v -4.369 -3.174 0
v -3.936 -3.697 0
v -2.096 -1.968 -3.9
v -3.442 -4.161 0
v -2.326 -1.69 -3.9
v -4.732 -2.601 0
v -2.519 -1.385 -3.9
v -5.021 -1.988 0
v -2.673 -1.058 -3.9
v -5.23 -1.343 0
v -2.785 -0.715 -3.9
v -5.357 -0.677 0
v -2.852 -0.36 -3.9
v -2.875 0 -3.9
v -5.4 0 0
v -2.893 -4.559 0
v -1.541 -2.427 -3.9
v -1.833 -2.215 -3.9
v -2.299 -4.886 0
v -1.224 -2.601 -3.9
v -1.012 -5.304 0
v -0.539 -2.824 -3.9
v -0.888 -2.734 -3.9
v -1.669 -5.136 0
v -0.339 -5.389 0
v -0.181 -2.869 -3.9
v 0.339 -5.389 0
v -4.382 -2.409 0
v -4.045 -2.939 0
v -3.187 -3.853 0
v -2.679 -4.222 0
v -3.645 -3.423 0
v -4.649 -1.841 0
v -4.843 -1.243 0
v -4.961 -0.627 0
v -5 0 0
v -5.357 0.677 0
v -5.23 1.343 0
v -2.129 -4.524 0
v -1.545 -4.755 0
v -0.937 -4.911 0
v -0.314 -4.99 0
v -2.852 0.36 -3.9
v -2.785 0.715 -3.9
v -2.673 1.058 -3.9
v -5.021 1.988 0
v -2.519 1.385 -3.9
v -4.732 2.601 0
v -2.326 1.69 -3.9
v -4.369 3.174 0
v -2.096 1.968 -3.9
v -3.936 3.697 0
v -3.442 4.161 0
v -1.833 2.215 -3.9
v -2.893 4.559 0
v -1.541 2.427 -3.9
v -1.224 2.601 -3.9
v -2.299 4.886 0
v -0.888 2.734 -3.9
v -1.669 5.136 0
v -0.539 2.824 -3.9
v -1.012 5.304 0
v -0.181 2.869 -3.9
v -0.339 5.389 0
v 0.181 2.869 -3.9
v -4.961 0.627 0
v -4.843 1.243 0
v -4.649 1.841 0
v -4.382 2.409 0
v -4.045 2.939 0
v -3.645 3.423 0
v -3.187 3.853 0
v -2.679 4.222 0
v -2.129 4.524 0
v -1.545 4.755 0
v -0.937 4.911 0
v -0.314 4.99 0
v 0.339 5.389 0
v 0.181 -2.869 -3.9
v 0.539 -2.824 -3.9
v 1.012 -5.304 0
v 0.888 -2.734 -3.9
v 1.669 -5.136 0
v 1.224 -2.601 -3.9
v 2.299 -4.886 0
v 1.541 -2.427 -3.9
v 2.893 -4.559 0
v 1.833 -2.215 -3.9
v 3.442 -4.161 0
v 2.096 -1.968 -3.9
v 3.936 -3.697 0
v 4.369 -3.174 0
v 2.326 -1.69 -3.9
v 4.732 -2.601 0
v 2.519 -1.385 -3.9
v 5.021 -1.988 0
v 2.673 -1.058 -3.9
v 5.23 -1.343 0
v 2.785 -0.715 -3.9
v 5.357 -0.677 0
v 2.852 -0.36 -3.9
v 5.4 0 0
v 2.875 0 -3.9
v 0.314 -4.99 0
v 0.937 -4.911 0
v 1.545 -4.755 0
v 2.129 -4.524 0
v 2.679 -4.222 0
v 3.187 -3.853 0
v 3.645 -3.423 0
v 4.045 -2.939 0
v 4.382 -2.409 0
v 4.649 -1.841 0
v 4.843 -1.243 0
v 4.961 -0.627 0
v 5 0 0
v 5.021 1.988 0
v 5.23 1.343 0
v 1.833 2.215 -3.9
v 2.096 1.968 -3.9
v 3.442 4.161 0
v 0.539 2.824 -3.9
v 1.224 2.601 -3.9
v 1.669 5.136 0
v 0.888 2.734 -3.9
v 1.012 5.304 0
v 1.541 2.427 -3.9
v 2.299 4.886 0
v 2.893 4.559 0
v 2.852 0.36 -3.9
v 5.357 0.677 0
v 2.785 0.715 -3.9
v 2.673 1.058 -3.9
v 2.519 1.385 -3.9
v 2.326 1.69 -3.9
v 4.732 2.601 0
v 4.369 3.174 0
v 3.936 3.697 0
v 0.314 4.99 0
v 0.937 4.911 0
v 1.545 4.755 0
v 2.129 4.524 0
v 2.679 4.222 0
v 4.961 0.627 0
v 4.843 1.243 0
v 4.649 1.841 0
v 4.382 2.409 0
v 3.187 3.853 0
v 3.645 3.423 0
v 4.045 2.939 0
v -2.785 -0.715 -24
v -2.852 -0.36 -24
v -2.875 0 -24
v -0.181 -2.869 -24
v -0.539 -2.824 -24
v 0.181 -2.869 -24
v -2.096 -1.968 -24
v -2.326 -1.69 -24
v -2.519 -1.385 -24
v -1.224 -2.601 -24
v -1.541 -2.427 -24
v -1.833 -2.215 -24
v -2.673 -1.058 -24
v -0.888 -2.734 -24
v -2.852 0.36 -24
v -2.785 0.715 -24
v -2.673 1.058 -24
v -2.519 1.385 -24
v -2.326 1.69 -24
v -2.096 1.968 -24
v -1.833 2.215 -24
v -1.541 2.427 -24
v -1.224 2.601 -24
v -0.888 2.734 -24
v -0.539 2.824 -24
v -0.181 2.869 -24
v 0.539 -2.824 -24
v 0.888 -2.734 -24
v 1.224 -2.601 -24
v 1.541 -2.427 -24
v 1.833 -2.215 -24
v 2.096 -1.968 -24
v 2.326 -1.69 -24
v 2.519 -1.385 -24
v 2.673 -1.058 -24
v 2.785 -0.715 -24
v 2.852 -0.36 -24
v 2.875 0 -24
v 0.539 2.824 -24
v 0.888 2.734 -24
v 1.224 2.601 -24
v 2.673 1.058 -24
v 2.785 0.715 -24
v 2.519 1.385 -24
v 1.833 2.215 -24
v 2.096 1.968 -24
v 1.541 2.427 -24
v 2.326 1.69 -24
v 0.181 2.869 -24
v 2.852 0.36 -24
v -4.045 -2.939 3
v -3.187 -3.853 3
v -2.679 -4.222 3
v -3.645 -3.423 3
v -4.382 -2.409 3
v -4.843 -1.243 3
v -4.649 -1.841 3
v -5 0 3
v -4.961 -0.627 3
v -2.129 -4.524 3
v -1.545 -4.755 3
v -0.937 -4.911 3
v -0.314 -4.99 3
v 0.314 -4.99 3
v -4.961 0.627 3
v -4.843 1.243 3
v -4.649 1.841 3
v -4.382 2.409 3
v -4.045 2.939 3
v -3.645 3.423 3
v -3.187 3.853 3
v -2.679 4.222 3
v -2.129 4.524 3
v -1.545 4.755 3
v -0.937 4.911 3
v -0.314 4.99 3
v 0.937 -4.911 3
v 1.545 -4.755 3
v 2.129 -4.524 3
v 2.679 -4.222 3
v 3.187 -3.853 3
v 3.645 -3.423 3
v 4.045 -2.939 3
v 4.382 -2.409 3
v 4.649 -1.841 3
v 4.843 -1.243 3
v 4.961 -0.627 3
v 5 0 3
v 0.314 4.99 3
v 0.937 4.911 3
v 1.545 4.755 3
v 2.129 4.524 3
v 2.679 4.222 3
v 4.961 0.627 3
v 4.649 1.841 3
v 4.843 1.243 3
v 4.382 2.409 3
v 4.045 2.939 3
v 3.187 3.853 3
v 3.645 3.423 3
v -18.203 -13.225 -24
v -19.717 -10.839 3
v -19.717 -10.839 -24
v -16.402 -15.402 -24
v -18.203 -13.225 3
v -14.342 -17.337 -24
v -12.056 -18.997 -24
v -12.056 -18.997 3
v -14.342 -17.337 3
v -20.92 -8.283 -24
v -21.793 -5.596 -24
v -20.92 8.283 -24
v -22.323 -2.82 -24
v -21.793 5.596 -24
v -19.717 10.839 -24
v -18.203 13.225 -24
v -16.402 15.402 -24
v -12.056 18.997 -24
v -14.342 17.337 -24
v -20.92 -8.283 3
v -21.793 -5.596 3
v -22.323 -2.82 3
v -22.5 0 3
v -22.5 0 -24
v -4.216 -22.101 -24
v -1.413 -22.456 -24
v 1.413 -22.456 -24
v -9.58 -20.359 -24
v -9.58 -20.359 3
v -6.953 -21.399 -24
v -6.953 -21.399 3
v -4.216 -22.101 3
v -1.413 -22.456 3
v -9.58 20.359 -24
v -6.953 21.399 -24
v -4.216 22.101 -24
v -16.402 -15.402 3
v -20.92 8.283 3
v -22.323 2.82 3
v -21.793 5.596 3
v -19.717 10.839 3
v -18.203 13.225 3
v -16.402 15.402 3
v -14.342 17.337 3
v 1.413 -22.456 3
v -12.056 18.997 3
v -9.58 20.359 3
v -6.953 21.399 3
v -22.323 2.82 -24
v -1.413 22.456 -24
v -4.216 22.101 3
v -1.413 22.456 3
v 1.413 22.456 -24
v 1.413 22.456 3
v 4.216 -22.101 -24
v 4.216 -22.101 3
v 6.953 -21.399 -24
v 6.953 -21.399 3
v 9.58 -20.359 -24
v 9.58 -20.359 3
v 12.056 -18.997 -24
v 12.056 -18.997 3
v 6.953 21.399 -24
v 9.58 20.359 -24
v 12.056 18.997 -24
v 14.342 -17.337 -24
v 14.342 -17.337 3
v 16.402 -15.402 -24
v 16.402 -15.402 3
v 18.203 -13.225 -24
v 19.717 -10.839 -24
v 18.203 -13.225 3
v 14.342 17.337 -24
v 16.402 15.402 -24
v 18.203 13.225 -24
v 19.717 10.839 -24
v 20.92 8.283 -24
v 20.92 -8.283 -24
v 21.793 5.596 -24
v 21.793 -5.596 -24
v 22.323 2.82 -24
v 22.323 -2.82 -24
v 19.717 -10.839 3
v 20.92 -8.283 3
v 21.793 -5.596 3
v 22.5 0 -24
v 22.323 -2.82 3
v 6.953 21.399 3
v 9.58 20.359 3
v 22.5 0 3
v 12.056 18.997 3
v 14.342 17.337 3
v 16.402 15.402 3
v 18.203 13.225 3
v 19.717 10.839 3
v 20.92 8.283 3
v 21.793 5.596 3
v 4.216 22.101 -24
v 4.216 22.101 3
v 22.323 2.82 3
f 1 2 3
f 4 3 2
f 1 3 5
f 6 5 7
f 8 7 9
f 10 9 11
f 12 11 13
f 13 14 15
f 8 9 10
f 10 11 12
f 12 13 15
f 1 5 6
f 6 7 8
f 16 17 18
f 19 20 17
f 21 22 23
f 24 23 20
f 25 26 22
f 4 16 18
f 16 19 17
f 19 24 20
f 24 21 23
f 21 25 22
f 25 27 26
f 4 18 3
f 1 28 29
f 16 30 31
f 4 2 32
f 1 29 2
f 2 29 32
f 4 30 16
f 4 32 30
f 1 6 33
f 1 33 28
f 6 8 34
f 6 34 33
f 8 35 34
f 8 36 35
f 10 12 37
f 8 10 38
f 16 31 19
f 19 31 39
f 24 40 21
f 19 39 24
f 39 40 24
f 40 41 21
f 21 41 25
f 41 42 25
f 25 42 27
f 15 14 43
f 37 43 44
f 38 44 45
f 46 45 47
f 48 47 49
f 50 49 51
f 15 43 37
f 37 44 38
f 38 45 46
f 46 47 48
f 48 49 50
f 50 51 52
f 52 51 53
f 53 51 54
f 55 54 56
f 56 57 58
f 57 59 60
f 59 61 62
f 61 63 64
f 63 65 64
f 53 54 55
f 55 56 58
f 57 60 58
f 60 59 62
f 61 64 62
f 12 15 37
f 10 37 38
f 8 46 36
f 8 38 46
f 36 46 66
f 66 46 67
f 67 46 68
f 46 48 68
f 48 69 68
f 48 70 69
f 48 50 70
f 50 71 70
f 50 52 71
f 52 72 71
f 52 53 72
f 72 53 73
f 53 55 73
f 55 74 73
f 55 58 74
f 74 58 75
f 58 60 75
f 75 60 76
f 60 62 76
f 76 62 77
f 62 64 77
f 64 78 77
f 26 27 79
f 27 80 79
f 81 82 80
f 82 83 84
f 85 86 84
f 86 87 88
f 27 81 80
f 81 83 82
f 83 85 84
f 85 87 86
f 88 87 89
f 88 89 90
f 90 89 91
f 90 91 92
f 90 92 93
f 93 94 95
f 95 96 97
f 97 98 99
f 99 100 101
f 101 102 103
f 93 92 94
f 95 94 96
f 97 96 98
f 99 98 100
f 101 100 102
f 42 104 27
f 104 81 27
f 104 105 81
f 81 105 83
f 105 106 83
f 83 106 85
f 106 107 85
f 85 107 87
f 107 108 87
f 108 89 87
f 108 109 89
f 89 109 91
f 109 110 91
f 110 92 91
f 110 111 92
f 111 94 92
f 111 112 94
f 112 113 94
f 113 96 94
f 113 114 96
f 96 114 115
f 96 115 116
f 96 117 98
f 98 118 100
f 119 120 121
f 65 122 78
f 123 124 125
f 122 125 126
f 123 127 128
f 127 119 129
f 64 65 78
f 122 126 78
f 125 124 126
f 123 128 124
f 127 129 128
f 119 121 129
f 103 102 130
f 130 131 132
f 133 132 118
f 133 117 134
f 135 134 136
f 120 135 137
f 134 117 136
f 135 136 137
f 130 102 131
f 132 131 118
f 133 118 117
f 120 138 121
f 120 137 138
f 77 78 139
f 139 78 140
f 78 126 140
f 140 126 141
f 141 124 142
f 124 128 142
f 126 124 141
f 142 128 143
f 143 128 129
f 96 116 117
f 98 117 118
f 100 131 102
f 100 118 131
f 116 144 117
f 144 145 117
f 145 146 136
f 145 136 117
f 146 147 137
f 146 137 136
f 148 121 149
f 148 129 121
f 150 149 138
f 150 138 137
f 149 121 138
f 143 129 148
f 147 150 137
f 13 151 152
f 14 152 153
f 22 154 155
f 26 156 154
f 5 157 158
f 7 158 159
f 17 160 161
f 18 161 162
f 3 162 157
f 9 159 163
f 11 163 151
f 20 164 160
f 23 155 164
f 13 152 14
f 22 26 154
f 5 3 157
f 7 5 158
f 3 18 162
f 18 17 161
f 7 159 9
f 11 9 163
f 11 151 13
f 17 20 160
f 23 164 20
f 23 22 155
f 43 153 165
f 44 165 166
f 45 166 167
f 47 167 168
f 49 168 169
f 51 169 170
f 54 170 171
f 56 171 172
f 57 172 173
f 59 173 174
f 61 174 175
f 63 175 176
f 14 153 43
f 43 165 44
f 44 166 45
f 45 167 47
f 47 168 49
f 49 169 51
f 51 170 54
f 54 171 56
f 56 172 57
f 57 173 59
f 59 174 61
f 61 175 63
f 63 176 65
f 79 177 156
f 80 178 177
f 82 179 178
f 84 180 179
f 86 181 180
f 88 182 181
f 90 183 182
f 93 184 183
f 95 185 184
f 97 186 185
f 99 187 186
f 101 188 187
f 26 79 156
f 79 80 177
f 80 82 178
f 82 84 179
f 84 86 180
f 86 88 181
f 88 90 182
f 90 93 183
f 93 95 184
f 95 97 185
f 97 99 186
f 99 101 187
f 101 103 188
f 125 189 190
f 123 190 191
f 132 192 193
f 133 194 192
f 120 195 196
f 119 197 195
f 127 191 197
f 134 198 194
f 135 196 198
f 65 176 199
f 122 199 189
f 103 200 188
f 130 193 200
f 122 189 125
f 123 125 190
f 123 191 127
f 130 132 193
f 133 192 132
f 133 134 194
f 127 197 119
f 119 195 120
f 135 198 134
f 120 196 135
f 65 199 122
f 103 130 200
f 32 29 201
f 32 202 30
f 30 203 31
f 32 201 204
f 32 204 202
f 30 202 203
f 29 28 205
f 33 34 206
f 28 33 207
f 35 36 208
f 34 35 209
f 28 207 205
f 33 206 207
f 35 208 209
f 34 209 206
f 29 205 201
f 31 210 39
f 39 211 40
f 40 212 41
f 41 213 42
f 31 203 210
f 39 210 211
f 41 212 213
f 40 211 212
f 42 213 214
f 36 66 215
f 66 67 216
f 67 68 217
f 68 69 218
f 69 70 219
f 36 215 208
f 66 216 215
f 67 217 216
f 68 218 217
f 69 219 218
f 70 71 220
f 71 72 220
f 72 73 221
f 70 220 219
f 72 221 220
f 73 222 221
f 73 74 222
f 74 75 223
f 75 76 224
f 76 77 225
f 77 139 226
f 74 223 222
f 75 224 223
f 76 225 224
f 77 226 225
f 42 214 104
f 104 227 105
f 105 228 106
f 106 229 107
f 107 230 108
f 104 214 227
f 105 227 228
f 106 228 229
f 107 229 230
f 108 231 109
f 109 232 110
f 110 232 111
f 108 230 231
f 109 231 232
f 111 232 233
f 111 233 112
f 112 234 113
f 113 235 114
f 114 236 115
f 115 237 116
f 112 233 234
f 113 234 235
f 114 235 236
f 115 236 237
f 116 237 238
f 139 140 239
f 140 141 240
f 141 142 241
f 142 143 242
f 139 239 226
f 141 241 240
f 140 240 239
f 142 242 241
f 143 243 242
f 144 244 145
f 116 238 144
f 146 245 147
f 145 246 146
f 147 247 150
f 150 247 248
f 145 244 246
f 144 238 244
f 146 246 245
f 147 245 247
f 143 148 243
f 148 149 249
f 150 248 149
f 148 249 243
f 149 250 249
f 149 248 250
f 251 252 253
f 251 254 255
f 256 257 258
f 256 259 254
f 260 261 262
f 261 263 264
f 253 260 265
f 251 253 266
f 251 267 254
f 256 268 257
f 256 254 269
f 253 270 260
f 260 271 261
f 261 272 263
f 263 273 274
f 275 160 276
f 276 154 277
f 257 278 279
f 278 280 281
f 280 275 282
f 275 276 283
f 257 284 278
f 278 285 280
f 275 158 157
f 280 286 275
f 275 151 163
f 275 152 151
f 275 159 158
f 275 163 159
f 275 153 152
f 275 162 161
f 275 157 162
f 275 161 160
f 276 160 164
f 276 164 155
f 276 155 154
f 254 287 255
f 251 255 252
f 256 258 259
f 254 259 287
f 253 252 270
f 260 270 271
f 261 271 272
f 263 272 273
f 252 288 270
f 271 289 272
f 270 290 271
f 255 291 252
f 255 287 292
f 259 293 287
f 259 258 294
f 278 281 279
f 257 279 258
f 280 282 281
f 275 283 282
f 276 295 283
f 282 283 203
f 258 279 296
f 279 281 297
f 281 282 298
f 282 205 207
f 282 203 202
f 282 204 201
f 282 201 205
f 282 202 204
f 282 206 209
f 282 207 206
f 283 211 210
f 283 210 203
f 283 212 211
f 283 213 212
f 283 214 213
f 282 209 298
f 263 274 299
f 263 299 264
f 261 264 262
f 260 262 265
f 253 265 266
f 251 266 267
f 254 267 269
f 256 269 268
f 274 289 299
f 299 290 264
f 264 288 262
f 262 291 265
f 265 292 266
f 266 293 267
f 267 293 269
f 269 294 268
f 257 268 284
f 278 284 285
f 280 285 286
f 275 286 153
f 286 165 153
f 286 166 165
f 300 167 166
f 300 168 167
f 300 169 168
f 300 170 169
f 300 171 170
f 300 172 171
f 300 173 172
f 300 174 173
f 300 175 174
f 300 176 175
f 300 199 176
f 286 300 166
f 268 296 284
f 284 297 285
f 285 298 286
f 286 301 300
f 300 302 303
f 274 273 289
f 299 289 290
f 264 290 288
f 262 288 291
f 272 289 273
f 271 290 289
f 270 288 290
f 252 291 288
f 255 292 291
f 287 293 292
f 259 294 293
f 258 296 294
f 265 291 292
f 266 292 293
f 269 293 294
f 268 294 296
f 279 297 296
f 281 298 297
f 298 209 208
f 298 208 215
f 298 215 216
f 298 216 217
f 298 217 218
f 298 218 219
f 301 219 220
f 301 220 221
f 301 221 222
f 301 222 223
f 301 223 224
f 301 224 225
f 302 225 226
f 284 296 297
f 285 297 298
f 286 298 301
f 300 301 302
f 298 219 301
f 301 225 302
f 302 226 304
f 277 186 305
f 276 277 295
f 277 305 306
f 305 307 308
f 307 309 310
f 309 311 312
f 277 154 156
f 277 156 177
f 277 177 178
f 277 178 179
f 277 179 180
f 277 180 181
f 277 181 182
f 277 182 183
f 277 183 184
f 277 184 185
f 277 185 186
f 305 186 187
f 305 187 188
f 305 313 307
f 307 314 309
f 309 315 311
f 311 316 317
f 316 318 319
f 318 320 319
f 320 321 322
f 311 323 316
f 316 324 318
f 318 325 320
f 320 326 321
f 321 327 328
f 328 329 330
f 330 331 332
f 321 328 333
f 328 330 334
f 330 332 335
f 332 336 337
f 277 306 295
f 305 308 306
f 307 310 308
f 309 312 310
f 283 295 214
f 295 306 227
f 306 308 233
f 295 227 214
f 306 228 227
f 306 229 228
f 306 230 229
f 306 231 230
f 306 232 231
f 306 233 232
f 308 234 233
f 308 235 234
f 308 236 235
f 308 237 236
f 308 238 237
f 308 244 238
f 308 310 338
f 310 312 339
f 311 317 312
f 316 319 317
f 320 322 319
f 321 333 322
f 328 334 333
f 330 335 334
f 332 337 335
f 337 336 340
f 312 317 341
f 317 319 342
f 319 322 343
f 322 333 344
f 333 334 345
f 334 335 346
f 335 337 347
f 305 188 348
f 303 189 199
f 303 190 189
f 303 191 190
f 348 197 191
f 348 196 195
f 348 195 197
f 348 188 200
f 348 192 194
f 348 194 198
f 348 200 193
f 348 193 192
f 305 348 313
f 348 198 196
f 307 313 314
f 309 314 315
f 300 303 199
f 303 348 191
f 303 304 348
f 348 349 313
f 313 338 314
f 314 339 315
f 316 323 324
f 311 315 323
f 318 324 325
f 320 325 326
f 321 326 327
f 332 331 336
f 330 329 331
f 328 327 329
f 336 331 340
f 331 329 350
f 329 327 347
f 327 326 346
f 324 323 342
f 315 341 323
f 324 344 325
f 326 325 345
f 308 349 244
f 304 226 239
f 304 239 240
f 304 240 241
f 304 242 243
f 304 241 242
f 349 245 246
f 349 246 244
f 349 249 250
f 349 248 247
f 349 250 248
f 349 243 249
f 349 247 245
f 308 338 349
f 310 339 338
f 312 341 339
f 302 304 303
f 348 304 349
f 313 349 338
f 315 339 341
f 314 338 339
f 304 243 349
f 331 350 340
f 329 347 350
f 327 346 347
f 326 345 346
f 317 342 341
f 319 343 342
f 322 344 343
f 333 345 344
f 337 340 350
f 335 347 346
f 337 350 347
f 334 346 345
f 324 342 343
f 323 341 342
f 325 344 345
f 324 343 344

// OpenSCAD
$fn = 50;

difference() {
	union() {
		translate(v = [0, 0, -24.0]) {
			cylinder(h = 27, r = 22.5);
		}
	}
	union() {
		translate(v = [0, 0, 0]) {
			rotate(a = [0, 0, 0]) {
				difference() {
					union() {
						translate(v = [0, 0, -27.0]) {
							cylinder(h = 27, r = 2.6);
						}
						translate(v = [0, 0, -3.9]) {
							cylinder(h = 3.9, r1 = 2.875, r2 = 5.4);
						}
						translate(v = [0, 0, -27.0]) {
							cylinder(h = 27, r = 2.875);
						}
						translate(v = [0, 0, -27.0]) {
							cylinder(h = 27, r = 2.6);
						}
					}
					union();
				}
			}
		}
		#cylinder(h = 3, r = 5.0);
	}
}
